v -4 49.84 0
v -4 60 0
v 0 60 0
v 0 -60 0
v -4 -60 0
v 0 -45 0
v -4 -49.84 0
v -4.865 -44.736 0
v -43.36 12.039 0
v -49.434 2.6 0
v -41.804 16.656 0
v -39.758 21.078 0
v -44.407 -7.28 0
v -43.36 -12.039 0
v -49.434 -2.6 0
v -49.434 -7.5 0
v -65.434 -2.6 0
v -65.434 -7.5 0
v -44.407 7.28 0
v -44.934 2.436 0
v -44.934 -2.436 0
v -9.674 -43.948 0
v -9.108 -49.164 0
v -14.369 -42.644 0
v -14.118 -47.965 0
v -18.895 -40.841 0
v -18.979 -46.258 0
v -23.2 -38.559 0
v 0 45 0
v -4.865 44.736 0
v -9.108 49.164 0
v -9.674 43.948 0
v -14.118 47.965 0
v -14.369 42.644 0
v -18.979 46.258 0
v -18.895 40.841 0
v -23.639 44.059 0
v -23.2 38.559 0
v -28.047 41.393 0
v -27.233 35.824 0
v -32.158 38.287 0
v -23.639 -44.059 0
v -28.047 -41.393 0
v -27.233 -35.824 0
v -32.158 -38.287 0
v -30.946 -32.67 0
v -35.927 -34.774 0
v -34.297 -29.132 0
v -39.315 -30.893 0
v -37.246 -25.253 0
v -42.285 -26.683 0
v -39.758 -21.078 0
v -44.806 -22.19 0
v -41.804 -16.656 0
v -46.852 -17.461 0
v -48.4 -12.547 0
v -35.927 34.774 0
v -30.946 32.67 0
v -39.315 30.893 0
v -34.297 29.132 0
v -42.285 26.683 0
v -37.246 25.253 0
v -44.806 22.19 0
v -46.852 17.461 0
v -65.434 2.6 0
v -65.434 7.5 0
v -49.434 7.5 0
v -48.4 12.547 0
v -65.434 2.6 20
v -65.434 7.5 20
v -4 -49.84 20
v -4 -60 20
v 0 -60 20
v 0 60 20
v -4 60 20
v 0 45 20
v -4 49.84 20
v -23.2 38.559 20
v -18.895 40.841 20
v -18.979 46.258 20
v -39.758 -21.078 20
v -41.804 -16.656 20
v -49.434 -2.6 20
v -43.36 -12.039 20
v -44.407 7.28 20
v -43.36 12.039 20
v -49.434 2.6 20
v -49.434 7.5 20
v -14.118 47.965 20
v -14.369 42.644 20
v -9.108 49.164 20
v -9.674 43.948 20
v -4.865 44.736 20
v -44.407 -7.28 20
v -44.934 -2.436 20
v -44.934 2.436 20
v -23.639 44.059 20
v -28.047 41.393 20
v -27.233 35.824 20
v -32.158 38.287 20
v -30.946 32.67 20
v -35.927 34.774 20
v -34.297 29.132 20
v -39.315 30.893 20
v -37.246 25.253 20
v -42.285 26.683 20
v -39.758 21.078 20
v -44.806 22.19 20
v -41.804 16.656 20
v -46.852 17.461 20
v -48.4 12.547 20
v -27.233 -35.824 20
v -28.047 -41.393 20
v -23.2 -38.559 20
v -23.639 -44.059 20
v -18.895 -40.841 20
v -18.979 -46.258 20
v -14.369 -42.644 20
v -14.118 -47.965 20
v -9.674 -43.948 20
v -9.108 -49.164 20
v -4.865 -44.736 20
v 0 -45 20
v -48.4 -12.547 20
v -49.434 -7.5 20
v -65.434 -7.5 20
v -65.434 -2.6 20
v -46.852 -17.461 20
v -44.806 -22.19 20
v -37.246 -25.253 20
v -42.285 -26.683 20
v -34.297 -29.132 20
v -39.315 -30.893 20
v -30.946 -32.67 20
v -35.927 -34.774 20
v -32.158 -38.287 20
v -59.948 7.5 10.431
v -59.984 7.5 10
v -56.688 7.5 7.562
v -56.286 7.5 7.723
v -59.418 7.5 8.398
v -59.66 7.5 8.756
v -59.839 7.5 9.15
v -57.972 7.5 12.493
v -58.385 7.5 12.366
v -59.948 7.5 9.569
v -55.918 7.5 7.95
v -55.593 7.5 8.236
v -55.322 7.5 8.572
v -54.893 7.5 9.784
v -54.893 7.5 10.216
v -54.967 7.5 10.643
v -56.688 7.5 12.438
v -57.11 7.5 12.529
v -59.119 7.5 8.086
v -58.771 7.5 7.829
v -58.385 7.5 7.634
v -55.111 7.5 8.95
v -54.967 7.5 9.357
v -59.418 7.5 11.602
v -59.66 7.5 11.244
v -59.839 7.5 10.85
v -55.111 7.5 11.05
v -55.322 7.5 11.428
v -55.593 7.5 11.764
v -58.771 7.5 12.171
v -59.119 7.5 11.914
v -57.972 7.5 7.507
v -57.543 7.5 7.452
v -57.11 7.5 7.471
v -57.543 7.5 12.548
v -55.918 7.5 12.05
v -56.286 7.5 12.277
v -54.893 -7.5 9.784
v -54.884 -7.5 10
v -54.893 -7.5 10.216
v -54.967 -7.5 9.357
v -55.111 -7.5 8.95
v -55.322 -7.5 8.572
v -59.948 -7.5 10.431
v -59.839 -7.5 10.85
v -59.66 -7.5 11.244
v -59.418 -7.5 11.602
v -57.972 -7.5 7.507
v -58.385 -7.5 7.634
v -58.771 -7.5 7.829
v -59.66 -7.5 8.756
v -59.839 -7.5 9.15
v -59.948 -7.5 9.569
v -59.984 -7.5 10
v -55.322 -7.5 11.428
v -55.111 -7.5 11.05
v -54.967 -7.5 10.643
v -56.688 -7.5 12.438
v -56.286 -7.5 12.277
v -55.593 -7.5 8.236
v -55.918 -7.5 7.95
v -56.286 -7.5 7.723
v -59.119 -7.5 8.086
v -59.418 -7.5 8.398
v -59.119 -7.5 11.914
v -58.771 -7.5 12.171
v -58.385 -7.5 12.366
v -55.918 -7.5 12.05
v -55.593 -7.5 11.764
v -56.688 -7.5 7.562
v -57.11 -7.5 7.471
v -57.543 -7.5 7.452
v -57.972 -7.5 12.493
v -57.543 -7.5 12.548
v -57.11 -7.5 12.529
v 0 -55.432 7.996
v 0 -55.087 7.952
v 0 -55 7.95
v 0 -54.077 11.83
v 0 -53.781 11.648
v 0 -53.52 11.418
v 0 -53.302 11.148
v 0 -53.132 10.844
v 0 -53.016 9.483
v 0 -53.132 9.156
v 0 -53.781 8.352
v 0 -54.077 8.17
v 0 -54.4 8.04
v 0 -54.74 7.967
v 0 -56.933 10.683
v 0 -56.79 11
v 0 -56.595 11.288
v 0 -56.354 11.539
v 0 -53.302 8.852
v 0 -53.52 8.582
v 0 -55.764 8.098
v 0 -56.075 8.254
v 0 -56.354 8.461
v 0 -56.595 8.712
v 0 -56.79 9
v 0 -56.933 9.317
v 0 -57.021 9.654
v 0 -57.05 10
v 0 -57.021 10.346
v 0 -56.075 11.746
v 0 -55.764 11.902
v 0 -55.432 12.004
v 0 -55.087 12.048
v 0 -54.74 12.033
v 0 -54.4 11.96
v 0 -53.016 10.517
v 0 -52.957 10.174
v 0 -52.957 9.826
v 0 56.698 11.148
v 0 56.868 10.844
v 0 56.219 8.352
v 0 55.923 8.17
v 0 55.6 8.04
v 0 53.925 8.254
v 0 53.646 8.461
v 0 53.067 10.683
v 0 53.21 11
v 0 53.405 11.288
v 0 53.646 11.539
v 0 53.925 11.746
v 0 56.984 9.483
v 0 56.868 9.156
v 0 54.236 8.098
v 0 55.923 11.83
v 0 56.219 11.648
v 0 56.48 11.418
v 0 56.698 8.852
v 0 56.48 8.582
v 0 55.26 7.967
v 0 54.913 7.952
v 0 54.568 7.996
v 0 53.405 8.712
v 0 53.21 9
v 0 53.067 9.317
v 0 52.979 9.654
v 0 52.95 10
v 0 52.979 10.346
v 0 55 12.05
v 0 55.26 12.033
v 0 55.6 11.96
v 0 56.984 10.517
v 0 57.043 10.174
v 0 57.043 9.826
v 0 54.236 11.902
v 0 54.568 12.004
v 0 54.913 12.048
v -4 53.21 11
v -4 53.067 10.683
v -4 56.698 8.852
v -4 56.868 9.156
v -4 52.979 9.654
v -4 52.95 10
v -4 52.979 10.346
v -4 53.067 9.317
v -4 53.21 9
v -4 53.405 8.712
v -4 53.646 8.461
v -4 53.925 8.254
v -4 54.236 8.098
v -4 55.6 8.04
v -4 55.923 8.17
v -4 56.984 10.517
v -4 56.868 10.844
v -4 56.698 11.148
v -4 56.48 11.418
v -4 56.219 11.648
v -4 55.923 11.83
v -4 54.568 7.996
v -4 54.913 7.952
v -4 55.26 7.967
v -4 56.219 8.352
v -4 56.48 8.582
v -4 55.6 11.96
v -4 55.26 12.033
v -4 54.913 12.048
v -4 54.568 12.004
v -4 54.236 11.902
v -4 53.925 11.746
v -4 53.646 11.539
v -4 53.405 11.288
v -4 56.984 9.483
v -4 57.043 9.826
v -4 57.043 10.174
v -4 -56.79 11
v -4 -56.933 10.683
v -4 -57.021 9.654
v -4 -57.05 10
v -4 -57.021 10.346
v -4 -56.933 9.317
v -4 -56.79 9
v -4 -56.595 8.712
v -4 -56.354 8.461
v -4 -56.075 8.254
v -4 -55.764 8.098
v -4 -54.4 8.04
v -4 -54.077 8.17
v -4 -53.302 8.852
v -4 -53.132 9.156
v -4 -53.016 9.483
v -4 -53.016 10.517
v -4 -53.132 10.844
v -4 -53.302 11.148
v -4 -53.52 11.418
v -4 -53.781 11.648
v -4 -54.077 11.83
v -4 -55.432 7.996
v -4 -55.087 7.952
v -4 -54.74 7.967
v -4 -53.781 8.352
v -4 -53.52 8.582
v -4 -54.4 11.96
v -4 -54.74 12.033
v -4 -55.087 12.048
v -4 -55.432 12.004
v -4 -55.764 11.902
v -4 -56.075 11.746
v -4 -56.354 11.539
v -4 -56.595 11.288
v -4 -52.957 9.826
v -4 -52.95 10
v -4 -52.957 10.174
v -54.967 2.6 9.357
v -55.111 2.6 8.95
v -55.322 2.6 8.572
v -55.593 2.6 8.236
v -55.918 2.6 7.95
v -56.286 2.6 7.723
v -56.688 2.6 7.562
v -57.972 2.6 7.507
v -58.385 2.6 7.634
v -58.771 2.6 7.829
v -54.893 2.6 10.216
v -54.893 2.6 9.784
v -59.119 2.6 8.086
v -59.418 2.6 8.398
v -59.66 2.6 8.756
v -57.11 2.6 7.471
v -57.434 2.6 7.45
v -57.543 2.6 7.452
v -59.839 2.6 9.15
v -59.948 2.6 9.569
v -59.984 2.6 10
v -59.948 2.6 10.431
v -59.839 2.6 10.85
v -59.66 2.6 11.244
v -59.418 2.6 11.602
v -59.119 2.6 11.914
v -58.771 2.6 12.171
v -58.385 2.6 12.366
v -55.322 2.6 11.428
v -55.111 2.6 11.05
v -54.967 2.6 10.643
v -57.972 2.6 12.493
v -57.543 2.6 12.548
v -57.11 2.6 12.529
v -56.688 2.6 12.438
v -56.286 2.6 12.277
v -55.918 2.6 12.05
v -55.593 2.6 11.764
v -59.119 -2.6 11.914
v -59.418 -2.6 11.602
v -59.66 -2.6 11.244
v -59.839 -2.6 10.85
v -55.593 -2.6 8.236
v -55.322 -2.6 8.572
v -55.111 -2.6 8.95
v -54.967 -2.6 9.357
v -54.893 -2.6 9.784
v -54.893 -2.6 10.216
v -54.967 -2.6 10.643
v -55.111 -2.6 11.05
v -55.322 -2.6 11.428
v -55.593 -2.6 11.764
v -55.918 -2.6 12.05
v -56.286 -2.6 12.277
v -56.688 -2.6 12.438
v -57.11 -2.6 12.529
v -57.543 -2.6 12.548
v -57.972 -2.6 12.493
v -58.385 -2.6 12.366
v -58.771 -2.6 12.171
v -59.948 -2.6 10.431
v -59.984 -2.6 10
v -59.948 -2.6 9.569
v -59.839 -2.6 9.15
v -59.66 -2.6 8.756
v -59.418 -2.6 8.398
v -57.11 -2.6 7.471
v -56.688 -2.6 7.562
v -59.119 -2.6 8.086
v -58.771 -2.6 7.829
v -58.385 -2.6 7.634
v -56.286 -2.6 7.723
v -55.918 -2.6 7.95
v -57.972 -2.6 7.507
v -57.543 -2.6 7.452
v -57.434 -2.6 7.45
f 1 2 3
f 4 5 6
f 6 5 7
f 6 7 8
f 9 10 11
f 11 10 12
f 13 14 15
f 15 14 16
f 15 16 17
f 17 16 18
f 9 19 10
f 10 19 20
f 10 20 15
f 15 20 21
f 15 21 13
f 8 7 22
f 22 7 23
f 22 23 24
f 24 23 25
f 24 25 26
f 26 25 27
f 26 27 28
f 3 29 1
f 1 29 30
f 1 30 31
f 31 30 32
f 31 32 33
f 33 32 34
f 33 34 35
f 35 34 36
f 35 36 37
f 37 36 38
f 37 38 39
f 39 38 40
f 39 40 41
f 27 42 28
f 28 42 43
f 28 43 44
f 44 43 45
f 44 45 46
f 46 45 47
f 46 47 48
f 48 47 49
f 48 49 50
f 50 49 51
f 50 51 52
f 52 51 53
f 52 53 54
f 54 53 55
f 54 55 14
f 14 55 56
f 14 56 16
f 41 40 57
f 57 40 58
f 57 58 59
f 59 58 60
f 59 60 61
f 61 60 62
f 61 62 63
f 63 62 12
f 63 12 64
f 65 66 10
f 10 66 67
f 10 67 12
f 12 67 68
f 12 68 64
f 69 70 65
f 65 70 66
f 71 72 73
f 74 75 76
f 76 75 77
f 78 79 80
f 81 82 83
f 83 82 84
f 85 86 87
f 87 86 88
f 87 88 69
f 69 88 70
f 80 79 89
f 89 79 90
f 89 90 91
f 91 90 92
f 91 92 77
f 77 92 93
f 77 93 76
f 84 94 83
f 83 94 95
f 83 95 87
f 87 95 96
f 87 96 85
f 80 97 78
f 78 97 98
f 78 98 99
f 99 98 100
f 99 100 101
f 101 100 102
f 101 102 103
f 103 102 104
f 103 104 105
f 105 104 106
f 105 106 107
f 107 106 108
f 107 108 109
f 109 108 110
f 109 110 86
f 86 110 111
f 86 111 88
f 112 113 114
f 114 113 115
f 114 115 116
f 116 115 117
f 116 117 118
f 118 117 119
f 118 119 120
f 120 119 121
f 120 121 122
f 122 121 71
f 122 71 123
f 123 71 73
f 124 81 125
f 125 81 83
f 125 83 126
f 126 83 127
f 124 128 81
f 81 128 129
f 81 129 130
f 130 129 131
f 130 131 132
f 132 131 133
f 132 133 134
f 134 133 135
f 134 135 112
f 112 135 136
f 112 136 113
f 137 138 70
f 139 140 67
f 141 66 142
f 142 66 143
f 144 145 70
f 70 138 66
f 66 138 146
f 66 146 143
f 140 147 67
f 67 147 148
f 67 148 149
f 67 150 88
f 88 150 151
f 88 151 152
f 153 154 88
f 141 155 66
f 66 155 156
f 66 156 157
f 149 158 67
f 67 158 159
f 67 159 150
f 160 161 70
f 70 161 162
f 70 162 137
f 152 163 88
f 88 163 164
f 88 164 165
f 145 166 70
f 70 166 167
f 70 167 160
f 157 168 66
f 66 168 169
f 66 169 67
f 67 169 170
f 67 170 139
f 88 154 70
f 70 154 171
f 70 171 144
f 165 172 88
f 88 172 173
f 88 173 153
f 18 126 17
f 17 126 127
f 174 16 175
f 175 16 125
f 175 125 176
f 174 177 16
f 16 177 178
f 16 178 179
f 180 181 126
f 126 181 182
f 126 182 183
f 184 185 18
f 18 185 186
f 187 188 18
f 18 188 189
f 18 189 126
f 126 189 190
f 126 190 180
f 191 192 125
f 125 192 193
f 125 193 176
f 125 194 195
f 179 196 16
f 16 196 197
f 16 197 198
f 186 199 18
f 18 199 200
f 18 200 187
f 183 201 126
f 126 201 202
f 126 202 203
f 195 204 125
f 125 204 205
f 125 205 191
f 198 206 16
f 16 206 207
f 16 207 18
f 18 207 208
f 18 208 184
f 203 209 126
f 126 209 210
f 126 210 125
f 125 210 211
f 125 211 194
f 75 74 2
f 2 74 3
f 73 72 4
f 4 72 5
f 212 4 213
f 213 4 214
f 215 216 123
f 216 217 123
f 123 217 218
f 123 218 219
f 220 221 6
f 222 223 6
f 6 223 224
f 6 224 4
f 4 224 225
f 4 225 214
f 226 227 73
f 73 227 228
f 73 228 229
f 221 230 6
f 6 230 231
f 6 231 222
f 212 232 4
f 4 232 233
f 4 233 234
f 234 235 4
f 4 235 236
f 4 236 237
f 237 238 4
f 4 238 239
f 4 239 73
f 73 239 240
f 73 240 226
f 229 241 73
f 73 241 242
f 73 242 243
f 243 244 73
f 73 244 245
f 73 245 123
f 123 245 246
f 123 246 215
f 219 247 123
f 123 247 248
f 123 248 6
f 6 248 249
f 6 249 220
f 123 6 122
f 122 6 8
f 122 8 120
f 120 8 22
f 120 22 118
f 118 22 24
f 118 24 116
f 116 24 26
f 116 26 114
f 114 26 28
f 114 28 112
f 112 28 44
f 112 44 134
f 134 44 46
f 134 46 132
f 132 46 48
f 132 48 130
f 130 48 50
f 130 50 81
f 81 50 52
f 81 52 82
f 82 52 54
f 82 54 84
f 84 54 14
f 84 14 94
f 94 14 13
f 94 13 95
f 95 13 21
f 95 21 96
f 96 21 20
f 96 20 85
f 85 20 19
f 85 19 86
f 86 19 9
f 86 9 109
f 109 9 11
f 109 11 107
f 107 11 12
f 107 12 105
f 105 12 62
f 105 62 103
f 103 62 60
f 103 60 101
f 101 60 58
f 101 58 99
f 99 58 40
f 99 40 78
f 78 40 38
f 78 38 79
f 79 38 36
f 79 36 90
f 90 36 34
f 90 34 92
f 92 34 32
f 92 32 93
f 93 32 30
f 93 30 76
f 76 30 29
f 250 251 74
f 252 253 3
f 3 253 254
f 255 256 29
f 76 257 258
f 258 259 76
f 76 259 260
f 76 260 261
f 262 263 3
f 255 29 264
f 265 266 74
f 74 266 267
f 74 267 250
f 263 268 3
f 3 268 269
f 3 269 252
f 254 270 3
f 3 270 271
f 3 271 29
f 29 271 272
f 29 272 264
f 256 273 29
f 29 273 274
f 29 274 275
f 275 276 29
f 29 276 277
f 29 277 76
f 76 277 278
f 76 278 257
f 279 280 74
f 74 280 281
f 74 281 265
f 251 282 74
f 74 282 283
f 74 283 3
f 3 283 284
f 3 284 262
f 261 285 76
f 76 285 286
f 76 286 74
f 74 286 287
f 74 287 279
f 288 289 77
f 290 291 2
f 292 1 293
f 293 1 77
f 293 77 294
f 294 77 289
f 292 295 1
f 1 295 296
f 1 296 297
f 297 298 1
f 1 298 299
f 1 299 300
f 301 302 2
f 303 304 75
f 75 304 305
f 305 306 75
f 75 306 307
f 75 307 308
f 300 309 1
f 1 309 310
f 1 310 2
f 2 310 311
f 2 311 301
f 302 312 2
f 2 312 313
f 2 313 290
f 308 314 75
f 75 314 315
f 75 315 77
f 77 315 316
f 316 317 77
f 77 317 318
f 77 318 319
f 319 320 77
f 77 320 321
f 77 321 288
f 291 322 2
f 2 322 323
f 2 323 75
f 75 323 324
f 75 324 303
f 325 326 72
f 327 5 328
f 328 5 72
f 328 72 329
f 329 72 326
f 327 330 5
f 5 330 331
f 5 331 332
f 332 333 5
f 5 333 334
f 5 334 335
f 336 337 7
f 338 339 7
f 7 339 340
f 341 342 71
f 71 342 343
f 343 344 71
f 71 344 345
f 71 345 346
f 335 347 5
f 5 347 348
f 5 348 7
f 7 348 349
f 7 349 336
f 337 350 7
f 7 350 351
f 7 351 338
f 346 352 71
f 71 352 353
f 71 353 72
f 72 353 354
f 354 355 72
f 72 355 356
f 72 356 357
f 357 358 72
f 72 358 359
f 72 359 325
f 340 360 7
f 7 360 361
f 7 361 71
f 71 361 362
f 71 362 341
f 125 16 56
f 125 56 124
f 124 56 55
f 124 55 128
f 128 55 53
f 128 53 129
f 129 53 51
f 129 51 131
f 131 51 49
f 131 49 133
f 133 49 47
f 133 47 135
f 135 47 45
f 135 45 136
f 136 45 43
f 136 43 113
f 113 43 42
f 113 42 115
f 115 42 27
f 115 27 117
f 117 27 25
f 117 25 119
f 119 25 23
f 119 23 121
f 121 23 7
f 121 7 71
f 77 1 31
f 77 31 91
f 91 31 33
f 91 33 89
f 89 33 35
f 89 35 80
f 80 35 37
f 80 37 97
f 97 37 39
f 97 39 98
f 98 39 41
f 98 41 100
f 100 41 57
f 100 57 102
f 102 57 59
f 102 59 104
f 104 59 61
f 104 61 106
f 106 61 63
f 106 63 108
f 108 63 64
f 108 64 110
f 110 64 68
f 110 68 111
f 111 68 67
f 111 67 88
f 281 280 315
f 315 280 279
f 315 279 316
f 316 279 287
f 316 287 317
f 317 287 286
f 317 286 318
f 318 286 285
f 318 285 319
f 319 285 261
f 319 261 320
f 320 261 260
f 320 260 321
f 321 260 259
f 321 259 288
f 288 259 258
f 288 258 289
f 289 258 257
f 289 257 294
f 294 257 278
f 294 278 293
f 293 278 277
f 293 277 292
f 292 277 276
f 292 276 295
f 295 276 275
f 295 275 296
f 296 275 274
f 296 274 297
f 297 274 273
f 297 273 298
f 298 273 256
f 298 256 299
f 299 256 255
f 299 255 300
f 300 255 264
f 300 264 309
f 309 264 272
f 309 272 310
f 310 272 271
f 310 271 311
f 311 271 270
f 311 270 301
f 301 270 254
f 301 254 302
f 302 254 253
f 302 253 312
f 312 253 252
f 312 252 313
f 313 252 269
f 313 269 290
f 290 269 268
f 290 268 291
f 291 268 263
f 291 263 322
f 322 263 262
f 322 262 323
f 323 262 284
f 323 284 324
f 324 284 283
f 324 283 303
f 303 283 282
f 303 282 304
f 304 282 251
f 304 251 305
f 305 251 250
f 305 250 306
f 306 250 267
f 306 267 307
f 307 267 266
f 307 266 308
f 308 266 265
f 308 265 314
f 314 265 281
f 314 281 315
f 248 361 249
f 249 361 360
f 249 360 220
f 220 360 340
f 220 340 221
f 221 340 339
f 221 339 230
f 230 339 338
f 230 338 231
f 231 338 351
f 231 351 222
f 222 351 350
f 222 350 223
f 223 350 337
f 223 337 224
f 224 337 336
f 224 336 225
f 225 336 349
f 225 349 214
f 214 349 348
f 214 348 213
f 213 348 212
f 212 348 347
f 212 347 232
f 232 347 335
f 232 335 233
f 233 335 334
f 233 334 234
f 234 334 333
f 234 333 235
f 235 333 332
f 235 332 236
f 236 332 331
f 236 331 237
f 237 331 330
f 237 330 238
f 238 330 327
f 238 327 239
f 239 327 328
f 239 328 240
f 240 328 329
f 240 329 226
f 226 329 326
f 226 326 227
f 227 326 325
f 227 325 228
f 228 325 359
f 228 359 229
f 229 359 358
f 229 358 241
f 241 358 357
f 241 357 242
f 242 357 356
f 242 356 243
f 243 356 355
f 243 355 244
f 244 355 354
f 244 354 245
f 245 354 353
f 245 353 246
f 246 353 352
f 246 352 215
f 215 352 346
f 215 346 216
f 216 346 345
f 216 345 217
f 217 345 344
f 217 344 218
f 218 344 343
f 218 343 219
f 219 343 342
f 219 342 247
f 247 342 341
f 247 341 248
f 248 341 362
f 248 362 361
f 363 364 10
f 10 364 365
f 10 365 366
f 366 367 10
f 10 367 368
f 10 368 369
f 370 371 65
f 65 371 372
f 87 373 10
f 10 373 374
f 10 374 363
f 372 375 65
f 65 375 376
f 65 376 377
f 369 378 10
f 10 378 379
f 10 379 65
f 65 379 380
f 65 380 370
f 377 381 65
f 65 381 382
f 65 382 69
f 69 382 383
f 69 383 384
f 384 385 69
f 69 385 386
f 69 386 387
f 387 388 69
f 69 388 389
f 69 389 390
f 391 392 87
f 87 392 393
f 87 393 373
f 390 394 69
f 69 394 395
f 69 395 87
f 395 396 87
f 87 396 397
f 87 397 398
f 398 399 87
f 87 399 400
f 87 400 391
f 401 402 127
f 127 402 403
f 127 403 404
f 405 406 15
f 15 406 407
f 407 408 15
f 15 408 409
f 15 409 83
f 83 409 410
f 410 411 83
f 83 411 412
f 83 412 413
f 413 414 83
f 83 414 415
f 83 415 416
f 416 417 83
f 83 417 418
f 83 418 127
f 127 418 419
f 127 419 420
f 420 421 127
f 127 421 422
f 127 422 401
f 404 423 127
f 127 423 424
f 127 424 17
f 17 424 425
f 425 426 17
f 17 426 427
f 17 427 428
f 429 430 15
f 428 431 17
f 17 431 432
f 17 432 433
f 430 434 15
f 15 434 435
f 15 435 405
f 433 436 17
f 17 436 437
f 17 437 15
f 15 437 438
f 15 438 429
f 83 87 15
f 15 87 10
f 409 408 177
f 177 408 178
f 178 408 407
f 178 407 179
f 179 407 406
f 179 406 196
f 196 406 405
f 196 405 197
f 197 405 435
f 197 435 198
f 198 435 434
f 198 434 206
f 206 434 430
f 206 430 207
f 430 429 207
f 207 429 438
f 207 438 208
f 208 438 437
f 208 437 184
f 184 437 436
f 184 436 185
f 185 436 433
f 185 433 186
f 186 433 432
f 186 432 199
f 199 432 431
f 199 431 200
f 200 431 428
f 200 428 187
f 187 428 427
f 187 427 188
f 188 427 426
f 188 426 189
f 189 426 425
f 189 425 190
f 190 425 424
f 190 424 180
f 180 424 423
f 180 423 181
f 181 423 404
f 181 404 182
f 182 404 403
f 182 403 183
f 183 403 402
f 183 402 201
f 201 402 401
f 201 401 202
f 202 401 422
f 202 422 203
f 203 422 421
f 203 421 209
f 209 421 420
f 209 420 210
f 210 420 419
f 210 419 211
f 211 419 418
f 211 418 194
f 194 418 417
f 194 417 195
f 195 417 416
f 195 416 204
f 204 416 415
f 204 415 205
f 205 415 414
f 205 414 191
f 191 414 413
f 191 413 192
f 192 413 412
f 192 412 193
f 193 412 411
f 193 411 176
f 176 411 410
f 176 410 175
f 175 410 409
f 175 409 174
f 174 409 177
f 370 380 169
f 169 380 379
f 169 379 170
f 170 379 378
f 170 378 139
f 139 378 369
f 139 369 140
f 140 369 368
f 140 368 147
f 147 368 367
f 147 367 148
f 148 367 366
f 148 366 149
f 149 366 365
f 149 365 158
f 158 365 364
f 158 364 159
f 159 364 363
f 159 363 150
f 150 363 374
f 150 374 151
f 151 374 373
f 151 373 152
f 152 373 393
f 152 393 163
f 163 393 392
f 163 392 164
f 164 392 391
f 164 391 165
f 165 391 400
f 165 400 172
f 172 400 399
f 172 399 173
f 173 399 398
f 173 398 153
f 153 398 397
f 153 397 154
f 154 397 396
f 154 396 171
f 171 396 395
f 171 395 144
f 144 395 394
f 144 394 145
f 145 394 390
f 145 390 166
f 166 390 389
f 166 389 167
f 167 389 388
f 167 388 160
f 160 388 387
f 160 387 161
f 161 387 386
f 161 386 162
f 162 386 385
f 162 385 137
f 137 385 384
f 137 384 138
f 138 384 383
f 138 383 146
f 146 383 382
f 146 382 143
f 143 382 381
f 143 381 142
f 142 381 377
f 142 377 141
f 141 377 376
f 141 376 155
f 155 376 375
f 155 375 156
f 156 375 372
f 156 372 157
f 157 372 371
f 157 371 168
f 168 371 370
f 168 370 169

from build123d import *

# Parameters (mm, degrees)
BOSS_EXTRUDE1_DEPTH = 20
CUT_EXTRUDE1_REACH  = 90.171
SKETCH2_R           = 2.05
SKETCH3_W           = 20
SKETCH3_H           = 5.2
CUT_EXTRUDE2_DEPTH  = 16
SKETCH4_R           = 2.55
CUT_EXTRUDE3_DEPTH  = 97.113982306


with BuildPart() as part:
    # Sketch1 → Boss-Extrude1 (new body)
    with BuildSketch(Plane.XY):
        with BuildLine():
            ThreePointArc((0, -45), (-45, 0), (0, 45))
            Line((0, 45), (0, 60))
            Line((0, 60), (-4, 60))
            Line((-4, 60), (-4, 49.839743178))
            ThreePointArc((-4, 49.839743178), (-34.087674646, 36.579098366), (-49.434299833, 7.5))
            Line((-49.434299833, 7.5), (-65.434299833, 7.5))
            Line((-65.434299833, 7.5), (-65.434299833, -7.5))
            Line((-65.434299833, -7.5), (-49.434299833, -7.5))
            ThreePointArc((-49.434299833, -7.5), (-34.087674646, -36.579098366), (-4, -49.839743178))
            Line((-4, -49.839743178), (-4, -60))
            Line((-4, -60), (0, -60))
            Line((0, -60), (0, -45))
        make_face()
    extrude(amount=BOSS_EXTRUDE1_DEPTH)

    # Sketch2 → Cut-Extrude1 (cut, up to next)
    with BuildSketch(Plane.ZY.offset(4), mode=Mode.PRIVATE) as cut_extrude1_sk1:
        with Locations(Location((10, 55, 0), (0, 0, 270))):
            Circle(SKETCH2_R)
    cut_extrude1_tool1 = extrude(cut_extrude1_sk1.sketch, amount=-CUT_EXTRUDE1_REACH, mode=Mode.PRIVATE) & part.part
    cut_extrude1 = cut_extrude1_tool1.solids().sort_by_distance((-4, 55, 10))[0]
    add(cut_extrude1, mode=Mode.SUBTRACT)

    # Mirror1: Cut-Extrude1 across plane
    add(cut_extrude1.mirror(Plane.ZX), mode=Mode.SUBTRACT)

    # Sketch3 → Cut-Extrude2 (cut)
    with BuildSketch(Plane.ZY.offset(65.434299833)):
        with Locations((10, 0)):
            Rectangle(SKETCH3_W, SKETCH3_H)
    extrude(amount=-CUT_EXTRUDE2_DEPTH, mode=Mode.SUBTRACT)

    # Sketch4 → Cut-Extrude3 (cut, through all)
    with BuildSketch(Plane(origin=(0, 7.5, 0), x_dir=(1, 0, 0), z_dir=(0, 1, 0))):
        with Locations(Location((-57.434299833, -10, 0), (0, 0, 90))):
            Circle(SKETCH4_R)
    extrude(amount=-CUT_EXTRUDE3_DEPTH, mode=Mode.SUBTRACT)


solid = part.part
